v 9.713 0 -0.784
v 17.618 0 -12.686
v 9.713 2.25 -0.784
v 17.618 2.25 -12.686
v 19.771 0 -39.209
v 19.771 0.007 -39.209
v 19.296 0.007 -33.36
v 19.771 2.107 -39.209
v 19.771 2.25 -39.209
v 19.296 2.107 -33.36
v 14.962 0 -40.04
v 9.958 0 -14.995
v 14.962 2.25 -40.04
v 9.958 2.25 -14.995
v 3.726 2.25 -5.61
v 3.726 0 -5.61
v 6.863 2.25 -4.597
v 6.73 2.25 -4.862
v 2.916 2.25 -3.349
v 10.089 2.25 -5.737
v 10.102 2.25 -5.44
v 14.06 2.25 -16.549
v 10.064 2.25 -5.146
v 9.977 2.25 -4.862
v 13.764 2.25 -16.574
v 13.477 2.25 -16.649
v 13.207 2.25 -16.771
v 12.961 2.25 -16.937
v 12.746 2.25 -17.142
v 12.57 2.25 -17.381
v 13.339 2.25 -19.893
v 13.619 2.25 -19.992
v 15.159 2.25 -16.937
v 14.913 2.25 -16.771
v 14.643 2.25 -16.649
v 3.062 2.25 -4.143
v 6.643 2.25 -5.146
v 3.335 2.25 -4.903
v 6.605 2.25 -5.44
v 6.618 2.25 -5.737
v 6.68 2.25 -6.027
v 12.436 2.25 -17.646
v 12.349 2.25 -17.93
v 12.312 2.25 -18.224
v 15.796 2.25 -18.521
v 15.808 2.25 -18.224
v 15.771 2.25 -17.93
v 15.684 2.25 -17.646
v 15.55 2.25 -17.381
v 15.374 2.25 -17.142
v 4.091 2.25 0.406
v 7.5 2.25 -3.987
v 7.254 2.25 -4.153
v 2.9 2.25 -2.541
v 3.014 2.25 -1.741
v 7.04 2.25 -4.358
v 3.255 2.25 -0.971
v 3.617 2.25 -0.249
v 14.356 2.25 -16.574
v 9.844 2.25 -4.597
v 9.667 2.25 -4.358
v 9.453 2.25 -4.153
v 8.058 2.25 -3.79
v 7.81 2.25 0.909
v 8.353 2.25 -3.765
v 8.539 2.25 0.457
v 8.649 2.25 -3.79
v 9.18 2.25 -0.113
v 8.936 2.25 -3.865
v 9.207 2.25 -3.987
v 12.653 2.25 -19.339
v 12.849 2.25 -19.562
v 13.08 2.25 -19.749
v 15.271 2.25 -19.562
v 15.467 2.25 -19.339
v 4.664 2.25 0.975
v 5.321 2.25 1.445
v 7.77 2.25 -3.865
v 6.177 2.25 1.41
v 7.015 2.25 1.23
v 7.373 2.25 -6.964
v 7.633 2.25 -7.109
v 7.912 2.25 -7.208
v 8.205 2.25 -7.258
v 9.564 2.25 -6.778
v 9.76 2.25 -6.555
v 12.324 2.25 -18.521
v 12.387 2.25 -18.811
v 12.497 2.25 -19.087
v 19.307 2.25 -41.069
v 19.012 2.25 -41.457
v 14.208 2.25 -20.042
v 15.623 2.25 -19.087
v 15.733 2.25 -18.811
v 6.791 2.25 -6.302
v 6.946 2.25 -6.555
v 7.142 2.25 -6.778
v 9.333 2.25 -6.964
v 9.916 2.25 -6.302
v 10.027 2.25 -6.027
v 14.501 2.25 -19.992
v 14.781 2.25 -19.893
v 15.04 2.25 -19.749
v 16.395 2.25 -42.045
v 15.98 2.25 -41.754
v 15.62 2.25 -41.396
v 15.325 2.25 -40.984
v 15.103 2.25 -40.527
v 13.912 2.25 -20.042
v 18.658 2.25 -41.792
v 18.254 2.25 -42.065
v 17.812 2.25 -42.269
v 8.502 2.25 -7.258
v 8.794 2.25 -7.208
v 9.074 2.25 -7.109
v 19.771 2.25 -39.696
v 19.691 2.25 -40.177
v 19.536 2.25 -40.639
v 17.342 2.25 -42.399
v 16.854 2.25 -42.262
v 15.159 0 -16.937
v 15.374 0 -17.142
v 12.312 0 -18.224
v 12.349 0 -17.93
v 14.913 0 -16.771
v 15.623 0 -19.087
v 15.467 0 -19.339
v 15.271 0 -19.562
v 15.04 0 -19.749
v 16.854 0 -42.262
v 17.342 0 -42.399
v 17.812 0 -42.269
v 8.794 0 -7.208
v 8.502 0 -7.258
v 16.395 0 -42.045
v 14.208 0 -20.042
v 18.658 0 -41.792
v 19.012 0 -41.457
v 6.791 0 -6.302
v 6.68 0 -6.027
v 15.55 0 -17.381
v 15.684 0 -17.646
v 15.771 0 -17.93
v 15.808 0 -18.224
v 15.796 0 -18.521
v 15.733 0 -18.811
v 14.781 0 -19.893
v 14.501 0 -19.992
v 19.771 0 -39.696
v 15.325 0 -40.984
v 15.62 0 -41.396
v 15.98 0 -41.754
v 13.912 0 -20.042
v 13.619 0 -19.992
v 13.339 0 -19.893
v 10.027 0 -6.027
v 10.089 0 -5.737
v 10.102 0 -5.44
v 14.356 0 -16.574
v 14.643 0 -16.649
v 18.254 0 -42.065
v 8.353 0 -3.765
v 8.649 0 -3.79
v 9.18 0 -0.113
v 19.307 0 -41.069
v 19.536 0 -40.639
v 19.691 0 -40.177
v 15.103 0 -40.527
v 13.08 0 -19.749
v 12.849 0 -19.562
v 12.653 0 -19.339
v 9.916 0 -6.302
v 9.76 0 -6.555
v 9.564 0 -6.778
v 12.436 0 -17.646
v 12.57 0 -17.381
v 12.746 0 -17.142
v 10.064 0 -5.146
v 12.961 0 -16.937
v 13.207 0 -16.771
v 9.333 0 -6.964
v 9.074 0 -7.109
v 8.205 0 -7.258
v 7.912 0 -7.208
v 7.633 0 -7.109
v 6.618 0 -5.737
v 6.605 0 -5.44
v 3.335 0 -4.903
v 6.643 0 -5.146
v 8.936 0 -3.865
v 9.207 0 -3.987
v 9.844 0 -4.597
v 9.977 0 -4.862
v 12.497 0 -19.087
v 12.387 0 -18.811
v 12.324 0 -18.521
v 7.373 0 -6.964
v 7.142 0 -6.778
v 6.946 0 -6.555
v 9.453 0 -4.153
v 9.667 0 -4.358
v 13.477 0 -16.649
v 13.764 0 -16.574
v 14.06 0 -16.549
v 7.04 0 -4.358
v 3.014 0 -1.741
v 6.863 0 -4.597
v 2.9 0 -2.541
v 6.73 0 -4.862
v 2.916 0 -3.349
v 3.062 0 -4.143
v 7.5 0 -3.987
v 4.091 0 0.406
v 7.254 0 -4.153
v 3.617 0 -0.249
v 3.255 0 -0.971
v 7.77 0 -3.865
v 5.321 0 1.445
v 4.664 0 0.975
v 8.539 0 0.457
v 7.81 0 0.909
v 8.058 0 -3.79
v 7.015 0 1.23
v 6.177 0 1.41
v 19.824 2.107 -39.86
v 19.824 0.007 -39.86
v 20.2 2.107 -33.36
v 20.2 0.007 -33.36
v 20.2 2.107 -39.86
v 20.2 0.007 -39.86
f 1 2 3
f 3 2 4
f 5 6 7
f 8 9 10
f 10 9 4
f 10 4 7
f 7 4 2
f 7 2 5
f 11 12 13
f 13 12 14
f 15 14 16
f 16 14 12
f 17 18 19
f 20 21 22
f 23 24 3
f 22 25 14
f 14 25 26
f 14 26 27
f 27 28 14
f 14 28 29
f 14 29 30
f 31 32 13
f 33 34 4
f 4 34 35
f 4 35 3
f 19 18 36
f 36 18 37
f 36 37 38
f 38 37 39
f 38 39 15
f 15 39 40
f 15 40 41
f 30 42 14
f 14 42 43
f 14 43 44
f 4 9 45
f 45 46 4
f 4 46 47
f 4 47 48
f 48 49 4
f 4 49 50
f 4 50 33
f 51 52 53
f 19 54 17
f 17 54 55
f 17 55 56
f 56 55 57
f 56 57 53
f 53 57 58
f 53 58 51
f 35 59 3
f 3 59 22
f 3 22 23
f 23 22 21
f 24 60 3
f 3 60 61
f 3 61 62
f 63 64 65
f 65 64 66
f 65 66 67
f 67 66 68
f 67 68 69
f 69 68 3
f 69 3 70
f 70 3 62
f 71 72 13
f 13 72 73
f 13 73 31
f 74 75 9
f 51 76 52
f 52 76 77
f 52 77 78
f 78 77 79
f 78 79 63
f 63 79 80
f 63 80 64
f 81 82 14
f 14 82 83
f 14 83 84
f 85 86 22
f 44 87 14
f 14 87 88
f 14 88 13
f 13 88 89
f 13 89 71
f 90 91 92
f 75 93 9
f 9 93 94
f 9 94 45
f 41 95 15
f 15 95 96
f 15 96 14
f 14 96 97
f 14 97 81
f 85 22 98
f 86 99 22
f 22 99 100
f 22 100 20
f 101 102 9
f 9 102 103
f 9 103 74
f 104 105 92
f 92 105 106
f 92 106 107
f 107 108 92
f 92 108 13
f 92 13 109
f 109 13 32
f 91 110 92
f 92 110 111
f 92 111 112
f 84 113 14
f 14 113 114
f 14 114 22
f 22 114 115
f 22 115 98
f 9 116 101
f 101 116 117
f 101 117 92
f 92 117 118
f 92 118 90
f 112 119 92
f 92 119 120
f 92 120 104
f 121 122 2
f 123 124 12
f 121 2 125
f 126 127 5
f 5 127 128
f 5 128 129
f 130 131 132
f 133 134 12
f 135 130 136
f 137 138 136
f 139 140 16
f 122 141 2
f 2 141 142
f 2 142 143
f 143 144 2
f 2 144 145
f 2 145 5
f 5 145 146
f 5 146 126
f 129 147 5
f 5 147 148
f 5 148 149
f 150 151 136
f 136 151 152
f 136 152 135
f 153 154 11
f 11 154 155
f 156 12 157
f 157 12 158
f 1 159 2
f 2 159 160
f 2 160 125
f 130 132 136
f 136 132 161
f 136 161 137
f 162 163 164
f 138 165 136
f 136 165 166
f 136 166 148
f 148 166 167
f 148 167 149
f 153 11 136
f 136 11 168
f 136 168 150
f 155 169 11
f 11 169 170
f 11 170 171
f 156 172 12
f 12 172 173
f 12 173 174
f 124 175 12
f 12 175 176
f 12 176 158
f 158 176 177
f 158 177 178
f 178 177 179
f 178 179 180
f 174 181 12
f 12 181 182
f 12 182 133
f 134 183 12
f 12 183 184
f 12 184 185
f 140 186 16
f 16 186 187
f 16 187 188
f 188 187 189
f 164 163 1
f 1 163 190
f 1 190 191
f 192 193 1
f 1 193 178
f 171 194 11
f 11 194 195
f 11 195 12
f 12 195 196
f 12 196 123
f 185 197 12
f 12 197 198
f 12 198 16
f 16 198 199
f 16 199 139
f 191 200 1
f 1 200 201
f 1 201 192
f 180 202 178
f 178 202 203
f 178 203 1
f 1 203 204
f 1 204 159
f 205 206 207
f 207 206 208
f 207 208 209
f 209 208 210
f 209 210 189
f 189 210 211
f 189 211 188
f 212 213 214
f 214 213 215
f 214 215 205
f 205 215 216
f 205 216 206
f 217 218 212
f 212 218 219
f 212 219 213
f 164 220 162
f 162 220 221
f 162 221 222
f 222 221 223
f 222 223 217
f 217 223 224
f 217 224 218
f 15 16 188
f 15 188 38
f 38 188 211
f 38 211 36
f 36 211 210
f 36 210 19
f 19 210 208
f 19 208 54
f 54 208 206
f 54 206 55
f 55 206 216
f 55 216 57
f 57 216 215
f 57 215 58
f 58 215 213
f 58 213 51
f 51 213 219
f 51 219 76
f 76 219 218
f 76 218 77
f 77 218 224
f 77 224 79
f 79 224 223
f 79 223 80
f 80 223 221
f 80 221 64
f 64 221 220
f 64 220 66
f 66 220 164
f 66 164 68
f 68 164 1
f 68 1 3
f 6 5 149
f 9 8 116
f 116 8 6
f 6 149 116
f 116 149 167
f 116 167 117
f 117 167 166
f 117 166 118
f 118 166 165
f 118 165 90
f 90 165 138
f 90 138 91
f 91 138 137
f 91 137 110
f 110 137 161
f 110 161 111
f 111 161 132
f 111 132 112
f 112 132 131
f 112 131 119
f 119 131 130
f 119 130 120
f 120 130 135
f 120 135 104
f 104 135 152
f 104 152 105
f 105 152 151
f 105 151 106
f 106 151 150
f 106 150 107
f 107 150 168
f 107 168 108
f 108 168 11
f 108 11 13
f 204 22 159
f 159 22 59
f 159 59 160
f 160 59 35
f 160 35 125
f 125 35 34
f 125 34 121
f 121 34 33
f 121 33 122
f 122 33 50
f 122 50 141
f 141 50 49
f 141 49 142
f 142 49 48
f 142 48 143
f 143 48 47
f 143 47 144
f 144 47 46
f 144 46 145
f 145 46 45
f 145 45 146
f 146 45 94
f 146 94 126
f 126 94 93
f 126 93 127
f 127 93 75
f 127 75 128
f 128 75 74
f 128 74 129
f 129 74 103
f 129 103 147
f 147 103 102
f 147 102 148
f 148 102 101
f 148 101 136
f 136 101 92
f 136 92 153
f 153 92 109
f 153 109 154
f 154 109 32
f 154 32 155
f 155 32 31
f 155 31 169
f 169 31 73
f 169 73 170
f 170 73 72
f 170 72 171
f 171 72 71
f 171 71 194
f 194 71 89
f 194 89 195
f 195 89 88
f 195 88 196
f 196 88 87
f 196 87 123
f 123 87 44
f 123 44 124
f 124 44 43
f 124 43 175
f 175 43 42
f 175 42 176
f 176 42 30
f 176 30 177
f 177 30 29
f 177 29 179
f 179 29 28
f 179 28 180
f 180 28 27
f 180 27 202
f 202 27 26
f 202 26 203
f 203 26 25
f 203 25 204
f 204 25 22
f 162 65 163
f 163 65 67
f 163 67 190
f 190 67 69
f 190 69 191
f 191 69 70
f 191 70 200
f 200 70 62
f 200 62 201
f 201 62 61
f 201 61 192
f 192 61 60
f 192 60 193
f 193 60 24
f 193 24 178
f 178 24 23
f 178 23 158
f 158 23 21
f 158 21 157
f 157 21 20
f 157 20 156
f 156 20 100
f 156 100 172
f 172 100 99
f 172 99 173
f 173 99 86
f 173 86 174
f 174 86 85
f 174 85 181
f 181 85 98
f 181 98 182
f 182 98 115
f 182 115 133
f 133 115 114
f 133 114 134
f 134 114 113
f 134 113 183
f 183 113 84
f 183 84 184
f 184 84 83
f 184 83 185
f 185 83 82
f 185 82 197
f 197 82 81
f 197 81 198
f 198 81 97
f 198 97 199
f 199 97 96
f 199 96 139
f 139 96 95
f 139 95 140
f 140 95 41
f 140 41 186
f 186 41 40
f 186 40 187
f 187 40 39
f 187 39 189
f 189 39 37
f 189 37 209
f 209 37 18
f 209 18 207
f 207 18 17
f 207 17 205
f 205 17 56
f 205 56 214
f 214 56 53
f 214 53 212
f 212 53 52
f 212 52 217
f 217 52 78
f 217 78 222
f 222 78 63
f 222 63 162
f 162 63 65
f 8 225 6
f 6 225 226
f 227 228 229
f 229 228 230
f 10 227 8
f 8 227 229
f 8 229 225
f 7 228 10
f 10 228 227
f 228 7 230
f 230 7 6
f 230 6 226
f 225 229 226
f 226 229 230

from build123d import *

# Parameters (mm, degrees)
BOSS_EXTRUDE1_DEPTH = 2.25
FILLET1_R           = 5
FILLET2_R           = 3
SKETCH2_R           = 1.75
CUT_EXTRUDE1_DEPTH  = 47.840102946
BOSS_EXTRUDE2_REACH = 40.51
SKETCH4_W           = 6.5
SKETCH4_H           = 2.1
BOSS_EXTRUDE3_REACH = 40.51
SKETCH4_2_W         = 6.5
SKETCH4_2_H         = 2.1


with BuildPart() as part:
    # Sketch1 → Boss-Extrude1 (new body)
    with BuildSketch(Plane(origin=(0, 0, 0), x_dir=(1, 0, 0), z_dir=(0, 1, 0))):
        Polygon((0, 0), (9.957880591, 14.994686196), (15.4441772, 42.451935686), (20.033915457, 42.451935686), (17.6175711, 12.686192897), (7.659690509, -2.308493299), align=None)
    extrude(amount=BOSS_EXTRUDE1_DEPTH)

    # Fillet1
    # the kernel refuses this fillet: 5 mm, written as the material it takes off along each edge
    with BuildSketch(Plane(origin=(7.659690509, -9.280606122, 2.308493299), x_dir=(0.5532155884096079, 0, -0.8330381220212022), z_dir=(0, 1, 0))) as fillet1_piece_1:
        with BuildLine():
            CenterArc((FILLET1_R * 0.742448489754, FILLET1_R), FILLET1_R, 196.816032259, 73.183967741)
            Line((-FILLET1_R * 0.214790094662, FILLET1_R * 0.710700341335), (0, 0))
            Line((0, 0), (FILLET1_R * 0.742448489754, 0))
        make_face()
    extrude(amount=20.811212244, mode=Mode.SUBTRACT)
    with BuildSketch(Plane(origin=(0, -16.83618483, 0), x_dir=(0.5532155884096086, 0, -0.8330381220212018), z_dir=(0, 1, 0))) as fillet1_piece_2:
        with BuildLine():
            CenterArc((FILLET1_R * 1.34689478637, -FILLET1_R), FILLET1_R, 90, 106.816032259)
            Line((FILLET1_R * 0.389656201955, -FILLET1_R * 1.28929965867), (0, 0))
            Line((0, 0), (FILLET1_R * 1.34689478637, 0))
        make_face()
    extrude(amount=35.922369659, mode=Mode.SUBTRACT)

    # Fillet2
    # the kernel refuses this fillet: 3 mm, written as the material it takes off along each edge
    with BuildSketch(Plane(origin=(15.4441772, -6.149660967, -42.451935686), x_dir=(-0.19593916459228597, 0, 0.9806160531925209), z_dir=(0, 1, 0))) as fillet2_piece_1:
        with BuildLine():
            CenterArc((FILLET2_R * 0.819954795549, FILLET2_R), FILLET2_R, 191.29959219, 78.70040781)
            Line((-FILLET2_R * 0.160661257643, FILLET2_R * 0.804060835408), (0, 0))
            Line((0, 0), (FILLET2_R * 0.819954795549, 0))
        make_face()
    extrude(amount=14.549321933, mode=Mode.SUBTRACT)
    with BuildSketch(Plane(origin=(20.033915457, -8.133512114, -42.451935686), x_dir=(-0.08091253350556188, 0, 0.9967212057148735), z_dir=(0, 1, 0))) as fillet2_piece_2:
        with BuildLine():
            CenterArc((FILLET2_R * 1.08446828191, -FILLET2_R), FILLET2_R, 90, 94.641020106)
            Line((FILLET2_R * 0.0877470761958, -FILLET2_R * 1.08091253351), (0, 0))
            Line((0, 0), (FILLET2_R * 1.08446828191, 0))
        make_face()
    extrude(amount=18.517024229, mode=Mode.SUBTRACT)

    # Sketch2 → Cut-Extrude1 (cut, through all)
    with BuildSketch(Plane(origin=(0, 2.25, 0), x_dir=(1, 0, 0), z_dir=(0, 1, 0))):
        with Locations(Location((8.353327454, 5.514543703, 0), (0, 0, 270))):
            Circle(SKETCH2_R)
        with Locations(Location((14.060025472, 18.298658758, 0), (0, 0, 270))):
            Circle(SKETCH2_R)
    extrude(amount=-CUT_EXTRUDE1_DEPTH, mode=Mode.SUBTRACT)

    # Boss-Extrude2: up to this plane
    boss_extrude2_end = Plane(origin=(17.6175711, 2.25, -12.686192897), z_dir=(-0.9967212057148735, 0, -0.0809125335055623))
    # Sketch4 → Boss-Extrude2 (add, up to the surface)
    with BuildSketch(Plane(origin=(20.2, -1.484709168, -8.201879583), x_dir=(0, 0, -1), z_dir=(1, 0, 0)), mode=Mode.PRIVATE) as boss_extrude2_sk1:
        with Locations((28.408493587, 2.541926215)):
            Rectangle(SKETCH4_W, SKETCH4_H)
    boss_extrude2_tool1 = split(extrude(boss_extrude2_sk1.sketch, amount=-BOSS_EXTRUDE2_REACH, mode=Mode.PRIVATE), bisect_by=boss_extrude2_end, keep=Keep.BOTH, mode=Mode.PRIVATE)
    add(boss_extrude2_tool1.solids().sort_by_distance((20.2, 1.057217, -36.610373))[0])

    # Boss-Extrude3: up to this face of the body (flat: up to its plane)
    boss_extrude3_end = Plane(part.part.faces().sort_by_distance((18.476650911, 1.142566407, -23.268769271))[0])
    # Sketch4<2> → Boss-Extrude3 (add, up to the picked face)
    with BuildSketch(Plane(origin=(20.2, -1.484709168, -8.201879583), x_dir=(0, 0, -1), z_dir=(1, 0, 0)), mode=Mode.PRIVATE) as boss_extrude3_sk1:
        with Locations((28.408493587, 2.541926215)):
            Rectangle(SKETCH4_2_W, SKETCH4_2_H)
    boss_extrude3_tool1 = split(extrude(boss_extrude3_sk1.sketch, amount=-BOSS_EXTRUDE3_REACH, mode=Mode.PRIVATE), bisect_by=boss_extrude3_end, keep=Keep.BOTH, mode=Mode.PRIVATE)
    add(boss_extrude3_tool1.solids().sort_by(Axis((20.2, 1.057217, -36.610373), (-1, 0, 0)))[0])


solid = part.part
